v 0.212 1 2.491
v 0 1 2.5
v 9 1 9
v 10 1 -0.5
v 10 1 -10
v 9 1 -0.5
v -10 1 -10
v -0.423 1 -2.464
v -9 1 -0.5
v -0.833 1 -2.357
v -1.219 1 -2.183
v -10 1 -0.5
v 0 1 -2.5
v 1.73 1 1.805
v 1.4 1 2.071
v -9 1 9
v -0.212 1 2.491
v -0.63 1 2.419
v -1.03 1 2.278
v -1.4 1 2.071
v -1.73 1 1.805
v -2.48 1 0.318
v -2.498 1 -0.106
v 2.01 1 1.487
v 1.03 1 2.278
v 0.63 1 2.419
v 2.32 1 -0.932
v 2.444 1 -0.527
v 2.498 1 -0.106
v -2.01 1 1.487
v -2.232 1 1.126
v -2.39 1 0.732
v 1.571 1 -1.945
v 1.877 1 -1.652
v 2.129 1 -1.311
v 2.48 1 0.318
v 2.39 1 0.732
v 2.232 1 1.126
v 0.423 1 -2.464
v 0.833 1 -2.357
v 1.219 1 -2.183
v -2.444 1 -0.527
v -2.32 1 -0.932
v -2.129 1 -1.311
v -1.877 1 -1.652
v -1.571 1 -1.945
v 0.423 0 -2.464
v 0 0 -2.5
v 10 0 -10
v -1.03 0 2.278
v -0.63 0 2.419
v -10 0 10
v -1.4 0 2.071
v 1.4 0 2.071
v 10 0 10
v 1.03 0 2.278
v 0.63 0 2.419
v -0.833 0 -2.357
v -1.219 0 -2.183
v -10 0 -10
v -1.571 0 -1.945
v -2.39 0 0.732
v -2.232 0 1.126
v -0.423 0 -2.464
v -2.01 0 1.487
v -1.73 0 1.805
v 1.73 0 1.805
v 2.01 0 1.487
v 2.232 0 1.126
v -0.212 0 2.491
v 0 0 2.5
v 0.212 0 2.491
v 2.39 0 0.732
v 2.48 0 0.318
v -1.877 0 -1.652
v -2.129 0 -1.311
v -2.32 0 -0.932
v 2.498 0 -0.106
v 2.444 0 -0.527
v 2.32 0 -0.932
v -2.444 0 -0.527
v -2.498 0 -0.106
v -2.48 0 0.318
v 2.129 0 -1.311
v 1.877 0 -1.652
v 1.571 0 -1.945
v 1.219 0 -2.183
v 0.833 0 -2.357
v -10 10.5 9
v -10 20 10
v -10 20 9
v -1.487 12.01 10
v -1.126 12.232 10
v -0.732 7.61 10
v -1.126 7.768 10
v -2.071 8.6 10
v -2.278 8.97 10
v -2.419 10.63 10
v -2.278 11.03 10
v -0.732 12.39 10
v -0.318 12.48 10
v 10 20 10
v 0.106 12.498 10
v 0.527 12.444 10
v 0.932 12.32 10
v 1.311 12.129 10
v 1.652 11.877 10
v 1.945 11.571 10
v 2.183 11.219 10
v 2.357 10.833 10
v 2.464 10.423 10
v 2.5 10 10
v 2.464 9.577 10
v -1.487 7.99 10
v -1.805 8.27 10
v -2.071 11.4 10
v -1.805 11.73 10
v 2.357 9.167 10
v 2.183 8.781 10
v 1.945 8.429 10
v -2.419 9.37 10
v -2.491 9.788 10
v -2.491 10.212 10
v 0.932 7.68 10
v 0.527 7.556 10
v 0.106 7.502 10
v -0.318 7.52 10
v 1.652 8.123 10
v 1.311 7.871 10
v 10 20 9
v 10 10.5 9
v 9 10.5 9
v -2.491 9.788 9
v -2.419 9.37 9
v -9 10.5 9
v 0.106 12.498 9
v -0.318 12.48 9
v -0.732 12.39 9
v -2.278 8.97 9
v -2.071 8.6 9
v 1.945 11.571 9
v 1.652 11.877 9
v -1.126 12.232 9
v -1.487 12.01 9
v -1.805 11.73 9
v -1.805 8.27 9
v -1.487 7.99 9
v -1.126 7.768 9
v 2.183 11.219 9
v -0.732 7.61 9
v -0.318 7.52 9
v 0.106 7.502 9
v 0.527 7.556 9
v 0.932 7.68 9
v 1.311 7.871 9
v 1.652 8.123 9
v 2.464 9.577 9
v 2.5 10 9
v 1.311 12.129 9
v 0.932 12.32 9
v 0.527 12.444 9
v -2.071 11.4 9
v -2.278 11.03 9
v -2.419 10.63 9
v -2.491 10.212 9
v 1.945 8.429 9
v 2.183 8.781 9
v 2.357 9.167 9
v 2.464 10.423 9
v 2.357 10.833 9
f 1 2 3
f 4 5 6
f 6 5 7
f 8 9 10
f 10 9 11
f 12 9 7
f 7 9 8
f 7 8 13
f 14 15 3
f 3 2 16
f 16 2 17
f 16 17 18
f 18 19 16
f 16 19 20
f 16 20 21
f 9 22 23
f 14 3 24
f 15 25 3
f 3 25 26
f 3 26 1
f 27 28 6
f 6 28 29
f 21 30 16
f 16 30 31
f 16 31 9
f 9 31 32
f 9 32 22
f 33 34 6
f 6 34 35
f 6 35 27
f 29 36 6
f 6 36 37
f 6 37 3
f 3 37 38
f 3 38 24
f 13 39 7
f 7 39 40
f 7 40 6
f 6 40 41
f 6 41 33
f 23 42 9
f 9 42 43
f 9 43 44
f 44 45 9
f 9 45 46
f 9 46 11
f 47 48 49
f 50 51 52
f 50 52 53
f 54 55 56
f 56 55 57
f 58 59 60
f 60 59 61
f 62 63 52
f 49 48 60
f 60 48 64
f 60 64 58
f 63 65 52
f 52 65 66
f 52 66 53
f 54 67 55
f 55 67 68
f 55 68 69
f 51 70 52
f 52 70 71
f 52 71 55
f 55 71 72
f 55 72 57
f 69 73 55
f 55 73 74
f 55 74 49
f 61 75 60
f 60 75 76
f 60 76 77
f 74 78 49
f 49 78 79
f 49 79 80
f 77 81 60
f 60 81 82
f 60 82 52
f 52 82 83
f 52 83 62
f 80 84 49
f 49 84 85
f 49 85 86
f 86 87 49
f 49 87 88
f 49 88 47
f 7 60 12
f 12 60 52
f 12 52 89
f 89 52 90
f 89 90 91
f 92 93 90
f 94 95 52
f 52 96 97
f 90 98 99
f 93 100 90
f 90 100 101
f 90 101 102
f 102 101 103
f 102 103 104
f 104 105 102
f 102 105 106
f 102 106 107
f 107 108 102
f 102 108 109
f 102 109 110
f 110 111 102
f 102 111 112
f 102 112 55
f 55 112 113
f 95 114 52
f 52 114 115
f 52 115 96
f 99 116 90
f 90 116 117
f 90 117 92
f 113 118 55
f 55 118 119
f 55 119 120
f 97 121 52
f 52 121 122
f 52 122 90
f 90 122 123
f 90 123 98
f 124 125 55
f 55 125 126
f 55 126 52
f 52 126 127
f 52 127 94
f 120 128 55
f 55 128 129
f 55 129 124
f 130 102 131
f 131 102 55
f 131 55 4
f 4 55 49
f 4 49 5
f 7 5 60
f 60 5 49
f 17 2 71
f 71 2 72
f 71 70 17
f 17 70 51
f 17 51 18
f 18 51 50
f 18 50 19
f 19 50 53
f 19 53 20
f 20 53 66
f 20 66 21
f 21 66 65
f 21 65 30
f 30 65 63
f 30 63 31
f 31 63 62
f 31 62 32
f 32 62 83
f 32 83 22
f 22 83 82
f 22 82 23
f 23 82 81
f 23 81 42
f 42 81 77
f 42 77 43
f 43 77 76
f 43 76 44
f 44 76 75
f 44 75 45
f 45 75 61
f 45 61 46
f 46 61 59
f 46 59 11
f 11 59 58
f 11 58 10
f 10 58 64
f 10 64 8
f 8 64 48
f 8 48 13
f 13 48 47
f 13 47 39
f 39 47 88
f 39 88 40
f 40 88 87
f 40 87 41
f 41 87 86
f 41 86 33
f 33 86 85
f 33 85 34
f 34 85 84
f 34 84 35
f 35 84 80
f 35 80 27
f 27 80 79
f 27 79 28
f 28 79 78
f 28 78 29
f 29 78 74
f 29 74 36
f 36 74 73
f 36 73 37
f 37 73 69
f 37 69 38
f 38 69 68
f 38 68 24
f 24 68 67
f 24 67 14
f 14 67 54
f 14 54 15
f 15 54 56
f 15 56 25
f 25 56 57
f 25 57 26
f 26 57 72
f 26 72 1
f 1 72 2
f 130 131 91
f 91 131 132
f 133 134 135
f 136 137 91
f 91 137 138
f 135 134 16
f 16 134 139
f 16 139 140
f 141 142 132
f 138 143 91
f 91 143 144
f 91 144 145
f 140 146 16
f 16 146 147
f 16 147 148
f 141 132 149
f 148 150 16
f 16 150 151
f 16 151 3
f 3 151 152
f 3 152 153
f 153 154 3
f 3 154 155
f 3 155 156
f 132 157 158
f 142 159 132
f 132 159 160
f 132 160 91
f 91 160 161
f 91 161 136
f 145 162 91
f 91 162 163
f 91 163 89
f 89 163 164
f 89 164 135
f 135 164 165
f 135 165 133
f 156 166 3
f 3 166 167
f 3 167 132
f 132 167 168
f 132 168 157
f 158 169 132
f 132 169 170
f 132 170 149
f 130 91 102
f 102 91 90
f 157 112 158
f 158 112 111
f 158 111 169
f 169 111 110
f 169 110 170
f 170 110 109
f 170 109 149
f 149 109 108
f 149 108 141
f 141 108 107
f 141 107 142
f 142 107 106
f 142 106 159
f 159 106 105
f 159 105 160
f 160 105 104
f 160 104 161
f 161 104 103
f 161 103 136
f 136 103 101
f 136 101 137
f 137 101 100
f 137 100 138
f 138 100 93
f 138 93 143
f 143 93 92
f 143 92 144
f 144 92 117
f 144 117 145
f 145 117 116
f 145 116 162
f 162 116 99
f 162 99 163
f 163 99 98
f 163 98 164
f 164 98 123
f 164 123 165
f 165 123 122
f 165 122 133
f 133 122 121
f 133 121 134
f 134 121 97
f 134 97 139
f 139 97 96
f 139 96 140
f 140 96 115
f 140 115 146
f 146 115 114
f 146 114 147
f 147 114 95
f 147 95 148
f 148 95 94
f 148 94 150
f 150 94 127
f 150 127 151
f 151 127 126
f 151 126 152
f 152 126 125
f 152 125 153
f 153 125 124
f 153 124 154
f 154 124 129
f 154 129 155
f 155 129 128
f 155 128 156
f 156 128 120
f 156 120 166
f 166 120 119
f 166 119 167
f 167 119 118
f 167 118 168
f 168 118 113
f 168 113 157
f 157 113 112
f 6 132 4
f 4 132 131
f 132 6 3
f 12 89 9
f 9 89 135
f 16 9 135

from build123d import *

# Parameters (mm, degrees)
SKETCH1_W           = 20
SKETCH1_H           = 20
SKETCH1_R           = 2.5
BOSS_EXTRUDE1_DEPTH = 1
SKETCH2_W           = 20
SKETCH2_H           = 20
SKETCH2_R           = 2.5
BOSS_EXTRUDE2_DEPTH = 1
BOSS_EXTRUDE3_DEPTH = 1
BOSS_EXTRUDE4_START = -19
BOSS_EXTRUDE4_DEPTH = 1


with BuildPart() as part:
    # Sketch1 → Boss-Extrude1 (new body)
    with BuildSketch(Plane(origin=(0, 0, 0), x_dir=(1, 0, 0), z_dir=(0, 1, 0))):
        Rectangle(SKETCH1_W, SKETCH1_H)
        Circle(SKETCH1_R, mode=Mode.SUBTRACT)
    extrude(amount=BOSS_EXTRUDE1_DEPTH)

    # Sketch2 → Boss-Extrude2 (add)
    with BuildSketch(Plane.XY.offset(10)):
        with Locations((0, 10)):
            Rectangle(SKETCH2_W, SKETCH2_H)
        with Locations((0, 10)):
            Circle(SKETCH2_R, mode=Mode.SUBTRACT)
    extrude(amount=-BOSS_EXTRUDE2_DEPTH)

    # Sketch3 → Boss-Extrude3 (add)
    with BuildSketch(Plane(origin=(10, 0, 0), x_dir=(0, 0, -1), z_dir=(1, 0, 0))):
        Polygon((-9, 10.5), (0.5, 1), (-9, 1), align=None)
    extrude(amount=-BOSS_EXTRUDE3_DEPTH)

    # Sketch3<2> → Boss-Extrude4 (add)
    with BuildSketch(Plane(origin=(10, 0, 0), x_dir=(0, 0, -1), z_dir=(1, 0, 0)).offset(BOSS_EXTRUDE4_START)):
        Polygon((-9, 10.5), (0.5, 1), (-9, 1), align=None)
    extrude(amount=-BOSS_EXTRUDE4_DEPTH)


solid = part.part
